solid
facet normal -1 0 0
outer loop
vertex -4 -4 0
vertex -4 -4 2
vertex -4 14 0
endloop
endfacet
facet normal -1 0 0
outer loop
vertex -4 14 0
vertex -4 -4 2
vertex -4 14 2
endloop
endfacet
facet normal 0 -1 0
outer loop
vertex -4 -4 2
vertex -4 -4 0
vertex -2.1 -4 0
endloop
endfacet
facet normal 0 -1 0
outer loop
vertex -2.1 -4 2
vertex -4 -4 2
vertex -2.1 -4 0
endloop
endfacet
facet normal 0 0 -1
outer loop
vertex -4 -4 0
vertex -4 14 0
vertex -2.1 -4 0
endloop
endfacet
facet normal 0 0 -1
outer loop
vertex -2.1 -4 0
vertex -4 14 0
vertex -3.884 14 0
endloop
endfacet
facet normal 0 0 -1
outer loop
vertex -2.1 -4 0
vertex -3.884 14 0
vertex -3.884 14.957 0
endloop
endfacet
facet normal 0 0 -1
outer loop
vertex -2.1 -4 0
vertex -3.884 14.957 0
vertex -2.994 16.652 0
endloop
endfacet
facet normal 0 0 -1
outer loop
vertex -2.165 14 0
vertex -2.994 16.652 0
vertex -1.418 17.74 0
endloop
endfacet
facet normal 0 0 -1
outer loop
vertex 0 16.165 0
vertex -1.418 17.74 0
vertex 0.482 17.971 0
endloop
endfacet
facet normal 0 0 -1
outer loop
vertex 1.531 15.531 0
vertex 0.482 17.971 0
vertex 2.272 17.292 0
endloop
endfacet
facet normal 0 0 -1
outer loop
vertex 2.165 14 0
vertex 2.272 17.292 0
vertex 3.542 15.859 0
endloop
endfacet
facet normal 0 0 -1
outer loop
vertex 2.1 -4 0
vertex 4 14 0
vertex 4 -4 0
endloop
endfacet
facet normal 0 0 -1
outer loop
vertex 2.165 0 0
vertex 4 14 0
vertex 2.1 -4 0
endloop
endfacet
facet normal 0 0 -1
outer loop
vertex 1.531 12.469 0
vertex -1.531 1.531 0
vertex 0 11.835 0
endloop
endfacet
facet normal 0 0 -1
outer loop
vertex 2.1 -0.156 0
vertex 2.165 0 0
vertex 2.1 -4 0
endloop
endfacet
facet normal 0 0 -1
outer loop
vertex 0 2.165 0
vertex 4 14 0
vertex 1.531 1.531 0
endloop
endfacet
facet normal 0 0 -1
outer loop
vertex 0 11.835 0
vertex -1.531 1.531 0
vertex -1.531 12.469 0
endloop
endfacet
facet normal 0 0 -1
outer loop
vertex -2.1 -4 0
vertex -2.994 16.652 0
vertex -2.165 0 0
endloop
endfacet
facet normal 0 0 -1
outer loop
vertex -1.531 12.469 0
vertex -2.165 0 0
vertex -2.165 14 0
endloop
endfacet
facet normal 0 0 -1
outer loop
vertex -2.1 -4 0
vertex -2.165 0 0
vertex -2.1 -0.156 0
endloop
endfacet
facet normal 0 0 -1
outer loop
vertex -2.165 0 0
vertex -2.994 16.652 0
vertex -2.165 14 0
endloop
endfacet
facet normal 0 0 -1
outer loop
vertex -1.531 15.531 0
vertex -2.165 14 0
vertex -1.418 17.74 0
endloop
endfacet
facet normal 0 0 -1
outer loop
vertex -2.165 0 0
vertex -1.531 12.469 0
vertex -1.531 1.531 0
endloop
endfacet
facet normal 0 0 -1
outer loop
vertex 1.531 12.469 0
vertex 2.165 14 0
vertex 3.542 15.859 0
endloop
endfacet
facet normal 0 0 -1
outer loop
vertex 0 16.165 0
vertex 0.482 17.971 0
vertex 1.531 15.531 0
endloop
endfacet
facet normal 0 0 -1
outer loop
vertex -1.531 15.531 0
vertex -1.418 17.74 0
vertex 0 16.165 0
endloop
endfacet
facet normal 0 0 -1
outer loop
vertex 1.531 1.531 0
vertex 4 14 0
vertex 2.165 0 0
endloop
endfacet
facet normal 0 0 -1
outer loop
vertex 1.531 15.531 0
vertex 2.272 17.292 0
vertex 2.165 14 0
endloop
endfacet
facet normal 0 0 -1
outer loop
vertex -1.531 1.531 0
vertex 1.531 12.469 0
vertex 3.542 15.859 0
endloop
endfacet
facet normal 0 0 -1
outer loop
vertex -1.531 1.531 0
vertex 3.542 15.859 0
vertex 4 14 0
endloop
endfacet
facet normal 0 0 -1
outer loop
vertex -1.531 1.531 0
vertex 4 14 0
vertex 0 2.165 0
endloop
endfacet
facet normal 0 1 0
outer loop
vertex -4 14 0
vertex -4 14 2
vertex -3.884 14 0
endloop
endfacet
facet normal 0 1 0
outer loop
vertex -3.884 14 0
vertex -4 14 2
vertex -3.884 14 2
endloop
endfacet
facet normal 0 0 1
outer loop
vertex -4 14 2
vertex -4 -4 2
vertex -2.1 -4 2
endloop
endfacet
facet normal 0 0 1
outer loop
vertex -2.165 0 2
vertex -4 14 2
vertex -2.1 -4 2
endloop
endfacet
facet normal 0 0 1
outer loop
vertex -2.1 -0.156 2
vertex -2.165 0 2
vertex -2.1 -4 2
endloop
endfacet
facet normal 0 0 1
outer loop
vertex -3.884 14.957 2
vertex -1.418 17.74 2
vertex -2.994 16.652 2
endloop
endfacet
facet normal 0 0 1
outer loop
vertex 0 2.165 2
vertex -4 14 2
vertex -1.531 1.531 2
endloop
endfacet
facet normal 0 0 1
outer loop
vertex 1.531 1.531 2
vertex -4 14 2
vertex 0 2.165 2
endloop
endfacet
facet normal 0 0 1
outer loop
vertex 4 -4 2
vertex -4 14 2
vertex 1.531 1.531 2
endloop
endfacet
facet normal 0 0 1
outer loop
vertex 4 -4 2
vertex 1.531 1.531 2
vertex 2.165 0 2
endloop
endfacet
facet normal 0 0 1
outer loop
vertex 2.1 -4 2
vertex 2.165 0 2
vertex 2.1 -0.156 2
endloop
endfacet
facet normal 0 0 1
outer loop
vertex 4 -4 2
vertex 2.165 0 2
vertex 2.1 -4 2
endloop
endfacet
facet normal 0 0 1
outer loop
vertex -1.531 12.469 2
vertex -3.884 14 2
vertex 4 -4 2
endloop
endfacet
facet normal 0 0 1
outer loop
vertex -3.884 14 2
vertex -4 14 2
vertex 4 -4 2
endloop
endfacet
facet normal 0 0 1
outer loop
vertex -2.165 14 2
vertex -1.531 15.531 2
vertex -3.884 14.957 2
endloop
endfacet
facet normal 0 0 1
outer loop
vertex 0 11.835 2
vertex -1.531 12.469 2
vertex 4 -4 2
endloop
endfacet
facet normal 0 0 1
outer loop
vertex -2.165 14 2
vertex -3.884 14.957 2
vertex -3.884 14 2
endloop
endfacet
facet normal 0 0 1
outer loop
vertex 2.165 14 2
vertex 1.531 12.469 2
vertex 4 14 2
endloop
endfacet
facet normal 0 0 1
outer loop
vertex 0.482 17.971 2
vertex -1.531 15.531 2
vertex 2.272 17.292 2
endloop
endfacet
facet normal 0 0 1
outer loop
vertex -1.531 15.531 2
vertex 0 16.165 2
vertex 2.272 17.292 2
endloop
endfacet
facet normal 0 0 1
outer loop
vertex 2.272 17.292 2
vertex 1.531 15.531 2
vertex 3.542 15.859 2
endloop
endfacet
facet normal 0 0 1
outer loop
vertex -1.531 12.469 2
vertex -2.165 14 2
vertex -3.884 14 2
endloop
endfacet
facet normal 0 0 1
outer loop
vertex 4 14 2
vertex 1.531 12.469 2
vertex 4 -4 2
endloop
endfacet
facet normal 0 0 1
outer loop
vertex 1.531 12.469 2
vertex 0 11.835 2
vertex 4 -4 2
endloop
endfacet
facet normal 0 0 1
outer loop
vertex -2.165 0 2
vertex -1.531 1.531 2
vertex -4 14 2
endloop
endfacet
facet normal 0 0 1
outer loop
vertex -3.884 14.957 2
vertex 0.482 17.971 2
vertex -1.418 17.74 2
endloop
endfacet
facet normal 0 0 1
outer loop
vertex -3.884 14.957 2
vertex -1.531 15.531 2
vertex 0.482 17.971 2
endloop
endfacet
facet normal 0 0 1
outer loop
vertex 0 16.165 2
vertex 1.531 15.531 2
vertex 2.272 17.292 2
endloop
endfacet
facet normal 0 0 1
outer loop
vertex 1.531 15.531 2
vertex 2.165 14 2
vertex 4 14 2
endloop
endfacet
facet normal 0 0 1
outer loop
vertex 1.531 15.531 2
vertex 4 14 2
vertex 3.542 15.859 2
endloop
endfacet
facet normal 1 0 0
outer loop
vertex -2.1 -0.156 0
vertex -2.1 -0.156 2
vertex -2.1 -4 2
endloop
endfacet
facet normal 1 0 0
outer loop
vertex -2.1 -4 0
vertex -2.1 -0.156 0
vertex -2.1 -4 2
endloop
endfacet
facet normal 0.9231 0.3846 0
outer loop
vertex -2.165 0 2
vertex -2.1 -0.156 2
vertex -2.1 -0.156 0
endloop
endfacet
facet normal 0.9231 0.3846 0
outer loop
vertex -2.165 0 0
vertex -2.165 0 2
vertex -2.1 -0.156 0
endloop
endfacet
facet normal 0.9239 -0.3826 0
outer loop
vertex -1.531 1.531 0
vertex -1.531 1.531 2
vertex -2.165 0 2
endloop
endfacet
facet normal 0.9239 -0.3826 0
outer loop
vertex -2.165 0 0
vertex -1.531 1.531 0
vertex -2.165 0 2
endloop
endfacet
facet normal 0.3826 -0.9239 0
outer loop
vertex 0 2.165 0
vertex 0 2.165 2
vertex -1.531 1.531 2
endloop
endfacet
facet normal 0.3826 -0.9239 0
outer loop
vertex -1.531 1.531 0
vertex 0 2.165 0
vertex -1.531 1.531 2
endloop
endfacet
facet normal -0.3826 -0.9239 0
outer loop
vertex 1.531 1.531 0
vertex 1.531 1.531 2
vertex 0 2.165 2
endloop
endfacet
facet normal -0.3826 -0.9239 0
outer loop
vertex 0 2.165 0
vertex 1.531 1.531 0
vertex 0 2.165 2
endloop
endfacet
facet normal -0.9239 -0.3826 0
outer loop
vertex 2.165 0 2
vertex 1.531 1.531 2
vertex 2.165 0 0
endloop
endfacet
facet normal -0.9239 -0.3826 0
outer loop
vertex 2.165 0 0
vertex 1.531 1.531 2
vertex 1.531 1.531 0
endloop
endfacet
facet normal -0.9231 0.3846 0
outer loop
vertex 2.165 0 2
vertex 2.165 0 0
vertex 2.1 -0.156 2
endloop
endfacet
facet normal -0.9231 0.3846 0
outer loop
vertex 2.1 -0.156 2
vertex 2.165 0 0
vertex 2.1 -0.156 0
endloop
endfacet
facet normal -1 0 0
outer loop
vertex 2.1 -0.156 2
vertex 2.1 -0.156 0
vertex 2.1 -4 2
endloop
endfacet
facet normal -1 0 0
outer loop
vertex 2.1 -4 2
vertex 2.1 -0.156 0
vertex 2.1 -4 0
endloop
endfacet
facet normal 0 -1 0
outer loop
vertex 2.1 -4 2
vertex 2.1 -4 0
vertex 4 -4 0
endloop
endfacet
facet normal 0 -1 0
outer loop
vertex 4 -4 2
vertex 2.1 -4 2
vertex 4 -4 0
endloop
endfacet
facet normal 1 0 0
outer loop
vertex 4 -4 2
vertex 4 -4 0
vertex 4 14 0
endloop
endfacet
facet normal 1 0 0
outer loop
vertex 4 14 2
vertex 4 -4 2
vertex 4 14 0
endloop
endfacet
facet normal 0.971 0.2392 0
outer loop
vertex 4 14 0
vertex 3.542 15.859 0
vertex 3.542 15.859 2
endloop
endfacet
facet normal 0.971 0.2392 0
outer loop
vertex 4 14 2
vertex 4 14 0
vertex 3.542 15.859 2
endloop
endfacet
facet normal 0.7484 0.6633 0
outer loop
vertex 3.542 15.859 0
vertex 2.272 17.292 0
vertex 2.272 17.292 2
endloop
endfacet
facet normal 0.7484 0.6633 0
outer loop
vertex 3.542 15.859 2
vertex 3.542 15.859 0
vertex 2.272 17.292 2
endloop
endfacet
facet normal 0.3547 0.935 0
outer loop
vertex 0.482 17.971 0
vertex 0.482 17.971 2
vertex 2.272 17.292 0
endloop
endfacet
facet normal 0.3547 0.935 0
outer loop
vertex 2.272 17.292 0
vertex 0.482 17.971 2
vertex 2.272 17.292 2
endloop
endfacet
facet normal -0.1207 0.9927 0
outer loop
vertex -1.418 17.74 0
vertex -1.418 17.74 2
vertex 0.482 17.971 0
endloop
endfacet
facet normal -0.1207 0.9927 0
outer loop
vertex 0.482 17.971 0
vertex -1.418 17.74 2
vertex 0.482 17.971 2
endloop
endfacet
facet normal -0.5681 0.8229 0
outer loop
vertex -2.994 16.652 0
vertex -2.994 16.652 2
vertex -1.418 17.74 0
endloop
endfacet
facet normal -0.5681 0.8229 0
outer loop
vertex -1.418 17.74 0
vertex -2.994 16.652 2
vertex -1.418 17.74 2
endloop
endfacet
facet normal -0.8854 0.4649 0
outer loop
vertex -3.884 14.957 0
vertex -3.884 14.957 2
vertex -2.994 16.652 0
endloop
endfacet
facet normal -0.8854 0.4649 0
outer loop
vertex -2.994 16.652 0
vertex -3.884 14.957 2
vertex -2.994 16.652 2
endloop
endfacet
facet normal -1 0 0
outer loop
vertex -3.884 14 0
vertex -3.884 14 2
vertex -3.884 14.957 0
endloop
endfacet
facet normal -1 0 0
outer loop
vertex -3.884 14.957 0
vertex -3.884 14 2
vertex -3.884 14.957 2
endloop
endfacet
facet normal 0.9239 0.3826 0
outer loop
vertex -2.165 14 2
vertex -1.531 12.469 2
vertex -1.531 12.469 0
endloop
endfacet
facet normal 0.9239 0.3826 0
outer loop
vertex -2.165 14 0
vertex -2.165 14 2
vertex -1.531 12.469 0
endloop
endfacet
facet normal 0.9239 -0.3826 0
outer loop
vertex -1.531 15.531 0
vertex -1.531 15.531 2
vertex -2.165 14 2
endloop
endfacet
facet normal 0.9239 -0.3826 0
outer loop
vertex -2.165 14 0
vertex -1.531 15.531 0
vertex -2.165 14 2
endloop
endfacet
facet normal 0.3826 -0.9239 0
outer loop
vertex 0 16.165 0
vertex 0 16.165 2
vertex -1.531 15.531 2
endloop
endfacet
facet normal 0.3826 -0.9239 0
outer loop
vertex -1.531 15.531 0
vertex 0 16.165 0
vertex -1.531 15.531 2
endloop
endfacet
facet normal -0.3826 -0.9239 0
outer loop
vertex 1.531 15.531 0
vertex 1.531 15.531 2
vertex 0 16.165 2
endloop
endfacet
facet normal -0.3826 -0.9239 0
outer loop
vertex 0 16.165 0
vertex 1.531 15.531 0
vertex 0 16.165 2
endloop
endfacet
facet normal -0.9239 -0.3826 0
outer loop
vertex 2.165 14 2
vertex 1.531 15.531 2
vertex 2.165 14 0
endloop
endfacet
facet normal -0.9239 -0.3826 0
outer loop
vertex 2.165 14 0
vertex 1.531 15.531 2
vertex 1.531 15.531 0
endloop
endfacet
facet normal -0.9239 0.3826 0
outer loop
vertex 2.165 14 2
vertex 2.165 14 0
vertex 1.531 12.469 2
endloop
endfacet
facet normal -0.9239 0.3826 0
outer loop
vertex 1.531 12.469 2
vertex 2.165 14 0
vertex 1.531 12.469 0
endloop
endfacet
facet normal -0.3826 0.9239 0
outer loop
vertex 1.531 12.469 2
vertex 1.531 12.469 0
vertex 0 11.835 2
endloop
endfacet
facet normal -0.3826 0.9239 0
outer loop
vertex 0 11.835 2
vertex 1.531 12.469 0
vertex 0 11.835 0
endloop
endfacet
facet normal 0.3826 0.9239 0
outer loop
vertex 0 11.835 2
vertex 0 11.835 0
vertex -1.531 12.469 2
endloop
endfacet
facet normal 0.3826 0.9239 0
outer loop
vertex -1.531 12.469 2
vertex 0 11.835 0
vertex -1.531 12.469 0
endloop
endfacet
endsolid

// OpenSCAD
// file: parameters.scad
// Parameters file for RepRap Huxley

pi=3.14159265;

// The relative location in your file system where the .dxf files are
// DXFs are for quick development.  They should be replaced by parameterised CSG in dure course.

fileroot="DXF-files/";

rodsize = 6;	//threaded/smooth rod diameter in mm
xaxis = 182.5;	//width of base in mm
yaxis = 266.5;	//length of base in mm


screwsize = 3;	//bearing bore/screw diameter in mm
bearingsize = 10;	//outer diameter of bearings in mm
bearingwidth = 4;	//width of bearings in mm


rodpitch = rodsize / 6;
rodnutsize = 0.8 * rodsize; //4.8
rodwashersize = 0.2 * rodsize; //1.2
rodwasherdiameter = 2 * rodsize;//12
screwpitch = screwsize / 6;
nutsize = 0.8 * screwsize;
nutdiameter = 1.9 * screwsize;
washersize = 0.2 * screwsize;
washerdiameter = 2 * screwsize;
partthick = 2 * (rodsize+1); //12
vertexrodspace = 2 * rodsize; //12


c = [0.3, 0.3, 0.3];
rodendoffset = rodnutsize + rodwashersize * 2 + partthick / 2;//13.2
vertexoffset = vertexrodspace + rodendoffset;//25.2
//vertexoffset = 22;

renderrodthreads = false;
renderscrewthreads = false;
fn = 36;

// The gap between the joining rods at a vertex

vertex_radius=sqrt(rodsize*rodsize + vertexoffset*vertexoffset);
vertex_ang = atan(vertexoffset/rodsize)-30;
vertex_gap = 2*vertex_radius*cos(vertex_ang);

// Nema 14 dimensions - these are absolute

nema14_square=35.3;
nema14_screws=26;
nema14_screw_r=1.5;
nema14_hub=22;
nema14_hub_depth=2;
nema14_length=36;
nema14_shaft=5;
nema14_shaft_length=66;
nema14_shaft_projection=19;

// Nema 11 dimensions - these are absolute

nema11_square=28.5;
nema11_screws=23;
nema11_screw_r=1.25;
nema11_hub=22;
nema11_hub_depth=2;
nema11_length=44.5;
nema11_shaft=5;
nema11_shaft_length=78;
nema11_shaft_projection=18;

// Limit switch parameters

limit_switch_hole_diameter=2.5;
limit_switch_centres=9.5;

// The RepRap slide bearings

bearing_mount_centres=18;
bearing_width=7;

// X axis parameters - many should be relative

x_bar_gap=30;
motor_center_y = 26;
bar_clamp_x=5;
bar_clamp_y=8;
bar_clamp_x_gap=23;
bearing_y=50;
bearing_x=bar_clamp_x_gap + 10;
hole_land=4;
thickness=5;
bearing_low_z = 8;
bearing_z_gap = 25;
bearing_plate_width = bearing_mount_centres+2*hole_land + 10;
bearing_plate_overlap=0.5;
bearing_plate_support=10;
// file: configuration.scad
// eMAKEr Huxley
// Configuration file
// GNU GPL v3
// Jean-Marc Giacalone
// info@emakershop.com
// www.emakershop.com
// http://www.reprap.org/wiki/EMAKER_Huxley
// http://github.com/jmgiacalone/eMAKERHuxley

use <library.scad>

//Round corner diameter
round_corner_diameter = 8;

//Thin wall size
layer_height = 0.4;
perimeter_width_over_thicknes = 1.6;
infill_widht_over_thickness = 1.55;
thin_wall = 2*(perimeter_width_over_thicknes*layer_height+infill_widht_over_thickness*layer_height);
if(thin_wall<2){
	echo("Check thin wall size, its below 2mm!");
}
echo(thin_wall);

// MINI-HUXLEY VERSION (TODO, just place holder)
// include <configuration-huxley.scad>
m8_diameter=8.3;
m5_diameter=5.3;
m4_diameter=4.3;
m3_diameter=3.3;
m3_dia_clr=3.5;
m3_nut = 2.8;
m3_af = 5.8;
m6_diameter = 6;
m6_nut = 11.5;
bushing_diameter = 8;
motor_shaft=5.3;
bushing_rodsize = 6;
bushing_outerDiameter = 12;
bushing_lenght = 8;

// Some basic functions, probably should be somewhere else
// main file
include <configuration.scad>
partthick=2;
partlength=18;
hole_size=4;
gap_adjust=0.2;
difference(){
	union(){
		translate([-hole_size,-hole_size,0]) cube([8,partlength,partthick]);
		translate([0,partlength-hole_size,0]) cylinder(h=partthick,r=8/2);
	}
	polyhole(h=partthick, d=hole_size);
	translate([0,-hole_size/2,partthick/2]) cube([hole_size+gap_adjust,hole_size,partthick], center=true);
	translate([0,partlength-hole_size,0]) polyhole(h=partthick,d=hole_size);
}
